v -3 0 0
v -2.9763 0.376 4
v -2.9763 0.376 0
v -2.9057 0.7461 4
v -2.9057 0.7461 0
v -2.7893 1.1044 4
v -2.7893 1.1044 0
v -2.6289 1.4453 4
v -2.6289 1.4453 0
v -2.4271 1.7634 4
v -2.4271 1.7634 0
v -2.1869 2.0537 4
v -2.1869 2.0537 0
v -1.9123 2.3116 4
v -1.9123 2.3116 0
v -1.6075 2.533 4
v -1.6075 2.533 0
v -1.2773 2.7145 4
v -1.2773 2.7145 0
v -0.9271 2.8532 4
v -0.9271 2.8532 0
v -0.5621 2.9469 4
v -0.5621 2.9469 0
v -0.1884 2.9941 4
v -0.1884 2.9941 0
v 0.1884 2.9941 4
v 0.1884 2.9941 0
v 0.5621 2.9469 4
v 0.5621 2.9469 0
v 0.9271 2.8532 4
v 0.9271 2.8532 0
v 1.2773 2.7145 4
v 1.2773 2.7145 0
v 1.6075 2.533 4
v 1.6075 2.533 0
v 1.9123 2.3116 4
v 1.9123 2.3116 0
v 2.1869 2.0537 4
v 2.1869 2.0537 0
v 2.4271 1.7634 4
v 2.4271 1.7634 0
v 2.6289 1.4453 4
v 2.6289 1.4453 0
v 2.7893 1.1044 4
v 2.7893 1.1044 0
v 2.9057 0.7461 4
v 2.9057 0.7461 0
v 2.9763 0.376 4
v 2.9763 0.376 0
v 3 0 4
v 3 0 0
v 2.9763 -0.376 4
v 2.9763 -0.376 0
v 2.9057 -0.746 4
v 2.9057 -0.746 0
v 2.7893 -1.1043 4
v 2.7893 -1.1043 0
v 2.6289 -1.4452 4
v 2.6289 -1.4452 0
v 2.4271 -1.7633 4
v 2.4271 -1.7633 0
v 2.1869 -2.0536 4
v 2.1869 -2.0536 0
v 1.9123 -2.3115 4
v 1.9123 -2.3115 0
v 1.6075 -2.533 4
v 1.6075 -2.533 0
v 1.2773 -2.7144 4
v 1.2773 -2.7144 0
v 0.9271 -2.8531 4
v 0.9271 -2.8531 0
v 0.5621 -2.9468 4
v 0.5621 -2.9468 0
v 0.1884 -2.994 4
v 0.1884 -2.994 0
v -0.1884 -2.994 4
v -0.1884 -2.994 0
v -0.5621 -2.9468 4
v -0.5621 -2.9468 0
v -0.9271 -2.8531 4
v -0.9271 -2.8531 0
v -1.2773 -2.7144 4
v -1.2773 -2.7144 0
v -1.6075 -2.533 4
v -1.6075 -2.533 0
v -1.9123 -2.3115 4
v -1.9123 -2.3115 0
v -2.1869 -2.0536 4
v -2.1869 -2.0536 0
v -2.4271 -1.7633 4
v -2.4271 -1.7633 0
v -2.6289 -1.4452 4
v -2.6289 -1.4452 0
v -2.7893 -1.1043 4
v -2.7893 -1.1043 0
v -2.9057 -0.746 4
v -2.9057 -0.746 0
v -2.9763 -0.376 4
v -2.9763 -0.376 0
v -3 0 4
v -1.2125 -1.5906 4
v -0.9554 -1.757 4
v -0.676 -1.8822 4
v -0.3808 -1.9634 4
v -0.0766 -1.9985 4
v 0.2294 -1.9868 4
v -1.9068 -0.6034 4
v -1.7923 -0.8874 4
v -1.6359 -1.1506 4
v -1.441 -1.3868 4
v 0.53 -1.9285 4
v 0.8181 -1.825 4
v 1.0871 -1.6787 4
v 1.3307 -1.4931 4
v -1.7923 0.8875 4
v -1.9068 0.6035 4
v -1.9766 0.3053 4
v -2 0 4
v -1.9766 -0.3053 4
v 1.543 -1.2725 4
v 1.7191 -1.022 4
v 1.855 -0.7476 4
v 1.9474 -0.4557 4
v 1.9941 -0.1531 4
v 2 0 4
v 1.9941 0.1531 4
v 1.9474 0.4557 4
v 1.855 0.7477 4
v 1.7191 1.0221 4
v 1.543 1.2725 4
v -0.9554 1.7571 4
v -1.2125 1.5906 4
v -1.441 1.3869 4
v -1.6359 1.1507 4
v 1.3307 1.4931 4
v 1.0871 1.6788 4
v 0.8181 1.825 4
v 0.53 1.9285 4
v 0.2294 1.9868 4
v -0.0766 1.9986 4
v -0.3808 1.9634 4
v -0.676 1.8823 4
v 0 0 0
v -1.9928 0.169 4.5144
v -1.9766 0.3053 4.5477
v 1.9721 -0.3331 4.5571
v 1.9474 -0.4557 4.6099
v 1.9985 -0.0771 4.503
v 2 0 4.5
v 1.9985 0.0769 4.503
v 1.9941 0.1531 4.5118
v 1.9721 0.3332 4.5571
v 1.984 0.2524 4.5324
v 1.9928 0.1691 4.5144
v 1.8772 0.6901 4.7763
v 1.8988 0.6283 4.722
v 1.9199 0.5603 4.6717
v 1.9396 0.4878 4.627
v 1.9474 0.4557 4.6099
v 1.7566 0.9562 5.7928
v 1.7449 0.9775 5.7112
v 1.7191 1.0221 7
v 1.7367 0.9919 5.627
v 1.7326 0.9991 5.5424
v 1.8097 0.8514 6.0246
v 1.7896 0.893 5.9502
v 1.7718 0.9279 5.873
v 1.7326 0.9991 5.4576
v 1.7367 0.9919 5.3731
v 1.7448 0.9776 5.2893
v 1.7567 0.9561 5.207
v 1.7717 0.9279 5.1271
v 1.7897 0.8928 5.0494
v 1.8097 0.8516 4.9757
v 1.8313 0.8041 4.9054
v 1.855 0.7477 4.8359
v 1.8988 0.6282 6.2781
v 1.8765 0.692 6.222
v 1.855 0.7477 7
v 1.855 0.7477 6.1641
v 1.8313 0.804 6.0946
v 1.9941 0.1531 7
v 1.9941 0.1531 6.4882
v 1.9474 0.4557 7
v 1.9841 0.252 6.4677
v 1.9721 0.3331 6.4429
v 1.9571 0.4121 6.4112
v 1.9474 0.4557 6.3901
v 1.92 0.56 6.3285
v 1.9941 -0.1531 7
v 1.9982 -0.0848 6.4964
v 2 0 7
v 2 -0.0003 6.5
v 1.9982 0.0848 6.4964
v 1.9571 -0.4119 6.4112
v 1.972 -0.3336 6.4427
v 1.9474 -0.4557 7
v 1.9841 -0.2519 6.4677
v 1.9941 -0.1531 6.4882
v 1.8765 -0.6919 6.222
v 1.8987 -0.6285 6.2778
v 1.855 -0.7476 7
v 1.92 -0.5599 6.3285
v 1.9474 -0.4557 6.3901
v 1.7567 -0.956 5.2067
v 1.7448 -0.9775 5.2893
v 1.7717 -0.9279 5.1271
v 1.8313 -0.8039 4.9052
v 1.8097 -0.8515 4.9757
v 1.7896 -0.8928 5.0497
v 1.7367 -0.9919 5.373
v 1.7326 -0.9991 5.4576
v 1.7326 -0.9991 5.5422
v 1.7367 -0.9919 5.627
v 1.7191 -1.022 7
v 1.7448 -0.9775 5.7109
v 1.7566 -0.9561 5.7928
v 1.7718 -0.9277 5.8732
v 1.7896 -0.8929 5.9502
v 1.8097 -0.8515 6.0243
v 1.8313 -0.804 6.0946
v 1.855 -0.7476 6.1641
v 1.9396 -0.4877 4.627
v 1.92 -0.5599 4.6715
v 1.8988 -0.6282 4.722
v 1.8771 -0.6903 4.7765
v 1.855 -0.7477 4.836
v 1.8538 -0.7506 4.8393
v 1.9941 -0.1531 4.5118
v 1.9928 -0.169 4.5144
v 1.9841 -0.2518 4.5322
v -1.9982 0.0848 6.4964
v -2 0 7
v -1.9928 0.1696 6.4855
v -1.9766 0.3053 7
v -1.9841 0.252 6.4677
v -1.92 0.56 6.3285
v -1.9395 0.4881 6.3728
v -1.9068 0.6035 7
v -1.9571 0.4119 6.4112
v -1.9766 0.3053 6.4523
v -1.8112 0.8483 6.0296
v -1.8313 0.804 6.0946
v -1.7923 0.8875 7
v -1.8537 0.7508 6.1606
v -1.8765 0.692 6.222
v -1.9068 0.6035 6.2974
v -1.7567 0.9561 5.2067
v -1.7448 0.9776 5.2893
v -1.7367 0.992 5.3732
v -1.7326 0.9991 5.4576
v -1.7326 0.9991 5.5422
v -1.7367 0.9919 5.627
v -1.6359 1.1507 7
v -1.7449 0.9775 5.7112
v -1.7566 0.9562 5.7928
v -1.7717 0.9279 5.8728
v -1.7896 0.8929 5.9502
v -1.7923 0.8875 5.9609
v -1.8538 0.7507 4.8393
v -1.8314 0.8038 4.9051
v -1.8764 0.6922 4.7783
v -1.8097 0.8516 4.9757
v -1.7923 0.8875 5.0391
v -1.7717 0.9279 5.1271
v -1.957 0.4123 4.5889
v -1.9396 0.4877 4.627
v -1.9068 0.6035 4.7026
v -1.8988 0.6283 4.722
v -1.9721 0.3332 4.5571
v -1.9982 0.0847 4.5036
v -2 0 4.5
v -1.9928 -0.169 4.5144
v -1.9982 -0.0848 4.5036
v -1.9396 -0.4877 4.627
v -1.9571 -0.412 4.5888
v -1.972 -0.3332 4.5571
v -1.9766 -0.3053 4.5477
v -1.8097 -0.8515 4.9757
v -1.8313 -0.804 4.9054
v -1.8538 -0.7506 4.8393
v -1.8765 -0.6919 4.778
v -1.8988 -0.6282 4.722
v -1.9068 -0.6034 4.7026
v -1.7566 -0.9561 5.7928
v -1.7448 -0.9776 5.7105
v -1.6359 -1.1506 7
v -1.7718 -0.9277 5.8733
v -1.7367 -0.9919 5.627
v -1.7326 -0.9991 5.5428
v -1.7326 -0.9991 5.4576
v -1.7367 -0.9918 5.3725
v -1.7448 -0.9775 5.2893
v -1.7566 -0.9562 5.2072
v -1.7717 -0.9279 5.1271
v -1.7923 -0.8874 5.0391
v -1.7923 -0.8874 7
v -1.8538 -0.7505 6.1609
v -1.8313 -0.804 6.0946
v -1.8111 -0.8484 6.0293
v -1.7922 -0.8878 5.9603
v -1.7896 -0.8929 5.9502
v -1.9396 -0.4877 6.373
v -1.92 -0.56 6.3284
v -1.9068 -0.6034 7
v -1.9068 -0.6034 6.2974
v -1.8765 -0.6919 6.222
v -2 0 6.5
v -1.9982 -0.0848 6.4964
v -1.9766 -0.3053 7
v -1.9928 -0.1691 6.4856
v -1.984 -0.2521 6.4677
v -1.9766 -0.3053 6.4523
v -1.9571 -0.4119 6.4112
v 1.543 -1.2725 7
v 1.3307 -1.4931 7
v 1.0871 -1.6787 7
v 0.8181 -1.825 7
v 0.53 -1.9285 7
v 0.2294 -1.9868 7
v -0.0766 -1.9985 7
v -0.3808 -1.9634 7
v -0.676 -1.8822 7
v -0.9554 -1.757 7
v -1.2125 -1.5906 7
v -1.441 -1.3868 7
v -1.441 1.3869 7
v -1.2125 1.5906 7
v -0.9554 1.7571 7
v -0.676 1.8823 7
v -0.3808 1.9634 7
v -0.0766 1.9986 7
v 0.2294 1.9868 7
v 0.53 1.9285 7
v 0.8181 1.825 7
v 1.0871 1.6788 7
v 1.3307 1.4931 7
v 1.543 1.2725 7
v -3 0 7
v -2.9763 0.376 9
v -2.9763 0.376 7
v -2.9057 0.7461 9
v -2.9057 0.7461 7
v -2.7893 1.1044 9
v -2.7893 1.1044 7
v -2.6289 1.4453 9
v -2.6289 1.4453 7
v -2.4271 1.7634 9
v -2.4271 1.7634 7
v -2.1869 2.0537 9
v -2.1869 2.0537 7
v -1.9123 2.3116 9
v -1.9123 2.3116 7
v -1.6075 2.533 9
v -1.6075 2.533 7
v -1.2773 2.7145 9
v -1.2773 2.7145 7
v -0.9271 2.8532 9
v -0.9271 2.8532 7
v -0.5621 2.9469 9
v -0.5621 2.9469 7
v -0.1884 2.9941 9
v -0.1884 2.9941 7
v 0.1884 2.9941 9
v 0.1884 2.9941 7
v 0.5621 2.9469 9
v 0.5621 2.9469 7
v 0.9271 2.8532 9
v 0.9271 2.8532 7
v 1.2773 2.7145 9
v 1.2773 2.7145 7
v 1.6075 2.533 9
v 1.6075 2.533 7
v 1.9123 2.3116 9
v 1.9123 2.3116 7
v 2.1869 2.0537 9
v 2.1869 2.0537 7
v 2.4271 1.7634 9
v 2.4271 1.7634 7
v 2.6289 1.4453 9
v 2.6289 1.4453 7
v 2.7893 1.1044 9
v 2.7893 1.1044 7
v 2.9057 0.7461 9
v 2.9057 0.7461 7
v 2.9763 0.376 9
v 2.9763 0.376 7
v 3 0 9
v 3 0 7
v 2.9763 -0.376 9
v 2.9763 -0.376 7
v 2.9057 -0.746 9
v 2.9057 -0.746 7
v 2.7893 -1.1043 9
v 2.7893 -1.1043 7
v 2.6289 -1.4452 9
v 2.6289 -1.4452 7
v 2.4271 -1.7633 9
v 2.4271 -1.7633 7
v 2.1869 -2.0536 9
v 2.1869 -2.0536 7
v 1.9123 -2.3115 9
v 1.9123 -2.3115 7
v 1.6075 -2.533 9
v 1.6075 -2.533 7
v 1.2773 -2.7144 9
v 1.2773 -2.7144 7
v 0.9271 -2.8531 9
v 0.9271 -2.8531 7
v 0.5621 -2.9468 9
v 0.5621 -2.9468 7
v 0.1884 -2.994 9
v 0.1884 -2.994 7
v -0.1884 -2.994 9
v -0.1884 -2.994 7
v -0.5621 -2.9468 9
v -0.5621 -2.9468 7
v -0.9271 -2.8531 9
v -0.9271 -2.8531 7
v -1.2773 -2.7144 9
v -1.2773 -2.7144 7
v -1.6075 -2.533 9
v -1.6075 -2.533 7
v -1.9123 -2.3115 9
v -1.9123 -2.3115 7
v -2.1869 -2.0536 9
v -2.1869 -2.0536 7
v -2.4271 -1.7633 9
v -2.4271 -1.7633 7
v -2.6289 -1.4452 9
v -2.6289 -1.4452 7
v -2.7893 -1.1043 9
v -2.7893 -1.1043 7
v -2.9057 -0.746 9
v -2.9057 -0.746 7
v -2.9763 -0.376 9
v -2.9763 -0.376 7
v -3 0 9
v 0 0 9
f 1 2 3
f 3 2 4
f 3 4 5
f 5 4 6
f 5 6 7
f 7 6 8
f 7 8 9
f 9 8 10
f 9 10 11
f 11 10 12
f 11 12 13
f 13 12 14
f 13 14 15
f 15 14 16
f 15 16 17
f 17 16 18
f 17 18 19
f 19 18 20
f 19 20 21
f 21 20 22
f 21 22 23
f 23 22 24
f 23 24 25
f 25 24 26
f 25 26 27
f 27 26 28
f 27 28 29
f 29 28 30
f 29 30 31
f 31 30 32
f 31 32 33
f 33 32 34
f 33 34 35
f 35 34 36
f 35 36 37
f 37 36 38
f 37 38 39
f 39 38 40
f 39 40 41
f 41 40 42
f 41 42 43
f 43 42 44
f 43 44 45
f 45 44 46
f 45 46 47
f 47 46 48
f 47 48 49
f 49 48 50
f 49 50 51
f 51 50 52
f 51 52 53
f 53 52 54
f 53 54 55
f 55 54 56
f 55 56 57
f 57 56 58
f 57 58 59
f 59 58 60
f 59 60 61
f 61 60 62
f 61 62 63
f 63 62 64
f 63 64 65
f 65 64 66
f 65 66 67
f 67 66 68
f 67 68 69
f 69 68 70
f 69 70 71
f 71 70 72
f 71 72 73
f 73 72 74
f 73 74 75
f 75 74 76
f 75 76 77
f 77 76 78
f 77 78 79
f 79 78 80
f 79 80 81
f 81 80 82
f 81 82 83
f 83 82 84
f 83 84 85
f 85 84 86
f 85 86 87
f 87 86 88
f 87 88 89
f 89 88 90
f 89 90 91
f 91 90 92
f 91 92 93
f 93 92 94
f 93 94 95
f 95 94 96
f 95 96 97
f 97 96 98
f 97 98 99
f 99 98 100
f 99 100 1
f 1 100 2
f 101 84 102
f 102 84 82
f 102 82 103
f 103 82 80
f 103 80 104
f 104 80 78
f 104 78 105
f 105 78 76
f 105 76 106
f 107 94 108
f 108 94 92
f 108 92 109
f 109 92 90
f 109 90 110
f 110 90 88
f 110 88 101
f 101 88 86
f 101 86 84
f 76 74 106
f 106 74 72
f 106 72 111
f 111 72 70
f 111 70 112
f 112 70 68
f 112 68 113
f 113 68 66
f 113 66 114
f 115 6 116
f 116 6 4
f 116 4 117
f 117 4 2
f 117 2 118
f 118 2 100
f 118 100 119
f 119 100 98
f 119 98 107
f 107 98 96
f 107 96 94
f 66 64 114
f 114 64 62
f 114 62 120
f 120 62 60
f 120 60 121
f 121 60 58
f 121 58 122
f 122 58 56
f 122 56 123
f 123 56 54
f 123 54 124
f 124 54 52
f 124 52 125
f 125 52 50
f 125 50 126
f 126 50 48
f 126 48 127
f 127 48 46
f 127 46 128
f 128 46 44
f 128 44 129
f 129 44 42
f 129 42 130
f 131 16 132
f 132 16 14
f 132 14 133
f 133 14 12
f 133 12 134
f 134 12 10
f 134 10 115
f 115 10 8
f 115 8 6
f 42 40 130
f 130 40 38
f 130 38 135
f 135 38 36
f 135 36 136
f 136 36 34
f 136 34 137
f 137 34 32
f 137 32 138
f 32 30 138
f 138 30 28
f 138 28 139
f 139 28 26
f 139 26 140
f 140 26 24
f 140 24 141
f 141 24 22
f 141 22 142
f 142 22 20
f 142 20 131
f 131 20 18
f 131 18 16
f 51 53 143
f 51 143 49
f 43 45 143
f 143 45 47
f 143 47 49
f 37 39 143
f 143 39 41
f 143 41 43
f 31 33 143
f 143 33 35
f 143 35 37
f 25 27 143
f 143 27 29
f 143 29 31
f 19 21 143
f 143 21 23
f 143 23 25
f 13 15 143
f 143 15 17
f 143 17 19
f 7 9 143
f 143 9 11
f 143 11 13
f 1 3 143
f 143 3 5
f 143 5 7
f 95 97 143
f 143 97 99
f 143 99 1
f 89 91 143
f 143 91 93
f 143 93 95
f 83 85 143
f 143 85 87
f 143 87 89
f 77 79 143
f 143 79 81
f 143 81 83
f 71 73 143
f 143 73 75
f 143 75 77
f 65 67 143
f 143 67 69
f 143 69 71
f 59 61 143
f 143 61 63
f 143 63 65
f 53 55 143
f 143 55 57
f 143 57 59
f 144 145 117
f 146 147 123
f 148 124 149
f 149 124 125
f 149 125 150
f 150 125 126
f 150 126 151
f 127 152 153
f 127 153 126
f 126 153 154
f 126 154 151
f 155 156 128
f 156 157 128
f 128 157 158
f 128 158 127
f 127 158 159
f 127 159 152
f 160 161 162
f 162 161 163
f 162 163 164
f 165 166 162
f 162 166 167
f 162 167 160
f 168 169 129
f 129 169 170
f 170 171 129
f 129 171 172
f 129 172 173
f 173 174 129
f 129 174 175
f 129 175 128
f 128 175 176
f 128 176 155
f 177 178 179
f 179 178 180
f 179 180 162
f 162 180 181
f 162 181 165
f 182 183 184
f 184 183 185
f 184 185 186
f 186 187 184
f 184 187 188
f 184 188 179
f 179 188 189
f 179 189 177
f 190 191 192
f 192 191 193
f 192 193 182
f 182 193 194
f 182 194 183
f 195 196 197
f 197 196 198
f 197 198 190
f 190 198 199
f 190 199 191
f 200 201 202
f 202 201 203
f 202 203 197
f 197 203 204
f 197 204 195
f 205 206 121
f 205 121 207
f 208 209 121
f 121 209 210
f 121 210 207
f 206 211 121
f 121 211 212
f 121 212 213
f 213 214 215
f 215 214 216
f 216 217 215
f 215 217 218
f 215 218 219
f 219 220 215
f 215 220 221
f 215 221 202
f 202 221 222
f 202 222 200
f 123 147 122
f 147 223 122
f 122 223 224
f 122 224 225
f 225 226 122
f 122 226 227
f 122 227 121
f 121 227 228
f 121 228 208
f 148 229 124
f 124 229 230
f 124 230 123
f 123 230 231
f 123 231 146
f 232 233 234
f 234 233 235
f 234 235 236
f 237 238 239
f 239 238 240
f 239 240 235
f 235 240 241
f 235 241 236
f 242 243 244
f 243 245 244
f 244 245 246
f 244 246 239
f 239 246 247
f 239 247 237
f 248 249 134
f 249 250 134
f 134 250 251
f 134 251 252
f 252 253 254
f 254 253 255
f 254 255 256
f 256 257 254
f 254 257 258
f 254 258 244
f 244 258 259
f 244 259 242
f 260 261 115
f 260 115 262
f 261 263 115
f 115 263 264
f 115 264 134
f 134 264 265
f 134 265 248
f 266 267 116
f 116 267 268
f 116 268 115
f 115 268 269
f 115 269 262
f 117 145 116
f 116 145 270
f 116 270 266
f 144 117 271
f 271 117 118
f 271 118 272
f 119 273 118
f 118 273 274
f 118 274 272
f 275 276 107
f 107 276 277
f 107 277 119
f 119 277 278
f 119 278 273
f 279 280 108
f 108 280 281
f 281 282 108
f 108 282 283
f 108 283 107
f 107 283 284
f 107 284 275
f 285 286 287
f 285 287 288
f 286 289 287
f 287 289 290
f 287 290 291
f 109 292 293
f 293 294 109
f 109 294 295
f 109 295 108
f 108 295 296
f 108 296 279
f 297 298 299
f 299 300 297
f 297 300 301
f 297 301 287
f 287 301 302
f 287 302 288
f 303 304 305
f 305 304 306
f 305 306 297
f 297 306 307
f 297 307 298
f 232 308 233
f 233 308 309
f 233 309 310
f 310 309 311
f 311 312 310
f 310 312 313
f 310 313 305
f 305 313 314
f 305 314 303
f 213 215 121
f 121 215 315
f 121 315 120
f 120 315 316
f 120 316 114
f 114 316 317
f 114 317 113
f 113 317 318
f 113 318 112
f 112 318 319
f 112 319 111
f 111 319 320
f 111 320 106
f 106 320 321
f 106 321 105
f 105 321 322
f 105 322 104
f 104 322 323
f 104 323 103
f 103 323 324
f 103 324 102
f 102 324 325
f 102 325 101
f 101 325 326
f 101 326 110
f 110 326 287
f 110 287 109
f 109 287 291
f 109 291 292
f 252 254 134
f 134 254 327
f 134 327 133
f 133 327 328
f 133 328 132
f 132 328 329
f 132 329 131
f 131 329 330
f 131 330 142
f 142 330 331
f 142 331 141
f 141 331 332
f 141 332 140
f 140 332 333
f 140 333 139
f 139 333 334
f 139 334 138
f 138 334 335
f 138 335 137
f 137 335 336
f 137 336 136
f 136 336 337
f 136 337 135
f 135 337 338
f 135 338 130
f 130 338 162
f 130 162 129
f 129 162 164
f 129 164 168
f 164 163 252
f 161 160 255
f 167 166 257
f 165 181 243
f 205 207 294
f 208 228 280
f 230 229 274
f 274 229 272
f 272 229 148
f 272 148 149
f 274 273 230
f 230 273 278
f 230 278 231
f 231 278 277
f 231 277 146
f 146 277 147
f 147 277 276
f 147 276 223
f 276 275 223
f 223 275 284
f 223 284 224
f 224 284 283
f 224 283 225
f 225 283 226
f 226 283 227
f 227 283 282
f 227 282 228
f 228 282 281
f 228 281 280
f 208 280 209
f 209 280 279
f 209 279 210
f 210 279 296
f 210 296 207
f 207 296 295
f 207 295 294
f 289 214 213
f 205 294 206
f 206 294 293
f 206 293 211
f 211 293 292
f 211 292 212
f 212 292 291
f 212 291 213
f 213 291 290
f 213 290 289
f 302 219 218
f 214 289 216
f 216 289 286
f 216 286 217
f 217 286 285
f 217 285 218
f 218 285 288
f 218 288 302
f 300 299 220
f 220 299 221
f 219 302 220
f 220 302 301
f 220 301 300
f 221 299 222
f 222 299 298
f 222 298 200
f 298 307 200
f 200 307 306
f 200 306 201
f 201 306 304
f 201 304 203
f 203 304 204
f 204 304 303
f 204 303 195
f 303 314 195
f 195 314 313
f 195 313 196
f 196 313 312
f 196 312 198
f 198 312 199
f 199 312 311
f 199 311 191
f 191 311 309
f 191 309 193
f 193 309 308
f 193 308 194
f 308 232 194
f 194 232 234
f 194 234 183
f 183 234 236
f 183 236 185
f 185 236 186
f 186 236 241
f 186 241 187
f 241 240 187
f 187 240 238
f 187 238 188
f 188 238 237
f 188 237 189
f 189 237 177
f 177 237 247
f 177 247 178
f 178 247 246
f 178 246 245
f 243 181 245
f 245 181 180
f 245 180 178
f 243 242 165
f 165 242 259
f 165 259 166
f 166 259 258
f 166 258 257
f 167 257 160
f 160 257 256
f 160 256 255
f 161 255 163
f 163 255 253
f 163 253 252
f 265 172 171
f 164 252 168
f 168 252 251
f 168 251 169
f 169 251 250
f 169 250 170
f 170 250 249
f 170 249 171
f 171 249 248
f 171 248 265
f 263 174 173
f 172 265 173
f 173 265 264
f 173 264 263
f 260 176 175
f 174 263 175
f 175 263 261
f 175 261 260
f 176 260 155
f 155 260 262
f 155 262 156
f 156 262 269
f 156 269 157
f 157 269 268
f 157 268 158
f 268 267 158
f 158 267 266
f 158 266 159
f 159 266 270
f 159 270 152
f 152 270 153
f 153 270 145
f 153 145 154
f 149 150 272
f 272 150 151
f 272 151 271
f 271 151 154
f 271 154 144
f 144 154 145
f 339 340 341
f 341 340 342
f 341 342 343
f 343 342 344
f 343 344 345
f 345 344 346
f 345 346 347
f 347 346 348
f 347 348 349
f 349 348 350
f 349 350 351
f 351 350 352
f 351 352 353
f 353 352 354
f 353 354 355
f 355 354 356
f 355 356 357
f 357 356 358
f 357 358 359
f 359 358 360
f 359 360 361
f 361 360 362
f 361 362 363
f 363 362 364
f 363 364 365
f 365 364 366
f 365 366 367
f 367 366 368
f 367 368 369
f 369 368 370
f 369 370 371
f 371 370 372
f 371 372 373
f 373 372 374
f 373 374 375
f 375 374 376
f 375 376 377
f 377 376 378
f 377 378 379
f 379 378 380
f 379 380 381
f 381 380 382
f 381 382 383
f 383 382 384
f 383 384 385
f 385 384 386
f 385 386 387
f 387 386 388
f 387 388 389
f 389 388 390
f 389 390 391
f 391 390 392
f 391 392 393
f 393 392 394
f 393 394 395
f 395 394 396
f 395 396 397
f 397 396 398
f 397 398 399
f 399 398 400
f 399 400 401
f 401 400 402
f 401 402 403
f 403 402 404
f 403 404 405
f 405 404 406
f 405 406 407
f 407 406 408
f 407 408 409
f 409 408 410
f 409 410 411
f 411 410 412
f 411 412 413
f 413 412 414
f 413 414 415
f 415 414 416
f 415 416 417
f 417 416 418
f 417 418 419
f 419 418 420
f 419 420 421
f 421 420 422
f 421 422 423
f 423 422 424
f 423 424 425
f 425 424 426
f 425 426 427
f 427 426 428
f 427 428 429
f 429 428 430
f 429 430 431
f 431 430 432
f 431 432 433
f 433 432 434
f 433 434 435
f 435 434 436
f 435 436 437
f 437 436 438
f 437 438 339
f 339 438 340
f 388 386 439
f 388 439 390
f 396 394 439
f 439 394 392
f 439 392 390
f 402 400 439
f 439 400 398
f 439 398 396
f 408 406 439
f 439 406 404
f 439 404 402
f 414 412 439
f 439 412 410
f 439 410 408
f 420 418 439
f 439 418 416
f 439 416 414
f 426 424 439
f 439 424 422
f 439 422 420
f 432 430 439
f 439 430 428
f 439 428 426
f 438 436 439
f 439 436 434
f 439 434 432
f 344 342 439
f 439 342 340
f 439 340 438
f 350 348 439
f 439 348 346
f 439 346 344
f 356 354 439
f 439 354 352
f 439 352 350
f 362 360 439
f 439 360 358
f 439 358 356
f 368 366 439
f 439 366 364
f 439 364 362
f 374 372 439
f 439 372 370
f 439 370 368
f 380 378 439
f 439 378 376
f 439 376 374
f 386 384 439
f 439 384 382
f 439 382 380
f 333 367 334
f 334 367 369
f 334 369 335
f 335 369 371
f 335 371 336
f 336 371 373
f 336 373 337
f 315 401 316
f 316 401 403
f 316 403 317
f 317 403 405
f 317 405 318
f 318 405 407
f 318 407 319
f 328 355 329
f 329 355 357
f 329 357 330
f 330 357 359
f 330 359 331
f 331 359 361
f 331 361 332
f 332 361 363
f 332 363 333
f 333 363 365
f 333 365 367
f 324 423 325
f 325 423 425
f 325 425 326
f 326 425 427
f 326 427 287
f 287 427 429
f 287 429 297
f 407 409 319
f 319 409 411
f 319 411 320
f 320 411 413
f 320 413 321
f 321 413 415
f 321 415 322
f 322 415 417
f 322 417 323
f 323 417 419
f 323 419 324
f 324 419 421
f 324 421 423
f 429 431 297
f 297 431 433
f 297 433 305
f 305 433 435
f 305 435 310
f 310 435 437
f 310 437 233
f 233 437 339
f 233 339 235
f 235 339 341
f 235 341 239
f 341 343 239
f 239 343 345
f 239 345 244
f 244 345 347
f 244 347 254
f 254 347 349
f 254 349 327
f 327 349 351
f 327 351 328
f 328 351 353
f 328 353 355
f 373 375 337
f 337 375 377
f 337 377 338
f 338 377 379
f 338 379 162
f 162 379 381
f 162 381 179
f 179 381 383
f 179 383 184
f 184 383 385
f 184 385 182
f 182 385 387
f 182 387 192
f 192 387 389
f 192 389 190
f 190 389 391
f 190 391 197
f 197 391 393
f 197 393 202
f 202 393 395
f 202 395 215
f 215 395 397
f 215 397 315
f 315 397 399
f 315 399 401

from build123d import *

# Parameters (mm, degrees)
SKETCH_2_R          = 3
EXTRUDE_1_DEPTH     = 4
SKETCH_3_R          = 2
EXTRUDE_2_DEPTH     = 3
SKETCH_4_R          = 1
CUT_EXTRUDE_1_DEPTH = 10.110433579
SKETCH_5_R          = 3
EXTRUDE_3_DEPTH     = 2


with BuildPart() as part:
    # 草图2 → 凸台-拉伸1 (new body)
    with BuildSketch(Plane.XY):
        Circle(SKETCH_2_R)
    extrude(amount=EXTRUDE_1_DEPTH)

    # 草图3 → 凸台-拉伸2 (add)
    with BuildSketch(Plane.XY.offset(4)):
        Circle(SKETCH_3_R)
    extrude(amount=EXTRUDE_2_DEPTH)

    # 草图4 → 切除-拉伸1 (cut, through all)
    with BuildSketch(Plane(origin=(2, 0, 0), x_dir=(0, 0, -1), z_dir=(1, 0, 0))):
        with Locations(Location((-5.5, 0, 0), (0, 0, 180))):
            Circle(SKETCH_4_R)
    extrude(amount=-CUT_EXTRUDE_1_DEPTH, mode=Mode.SUBTRACT)

    # 草图5 → 凸台-拉伸3 (add)
    with BuildSketch(Plane.XY.offset(7)):
        Circle(SKETCH_5_R)
    extrude(amount=EXTRUDE_3_DEPTH)


solid = part.part
